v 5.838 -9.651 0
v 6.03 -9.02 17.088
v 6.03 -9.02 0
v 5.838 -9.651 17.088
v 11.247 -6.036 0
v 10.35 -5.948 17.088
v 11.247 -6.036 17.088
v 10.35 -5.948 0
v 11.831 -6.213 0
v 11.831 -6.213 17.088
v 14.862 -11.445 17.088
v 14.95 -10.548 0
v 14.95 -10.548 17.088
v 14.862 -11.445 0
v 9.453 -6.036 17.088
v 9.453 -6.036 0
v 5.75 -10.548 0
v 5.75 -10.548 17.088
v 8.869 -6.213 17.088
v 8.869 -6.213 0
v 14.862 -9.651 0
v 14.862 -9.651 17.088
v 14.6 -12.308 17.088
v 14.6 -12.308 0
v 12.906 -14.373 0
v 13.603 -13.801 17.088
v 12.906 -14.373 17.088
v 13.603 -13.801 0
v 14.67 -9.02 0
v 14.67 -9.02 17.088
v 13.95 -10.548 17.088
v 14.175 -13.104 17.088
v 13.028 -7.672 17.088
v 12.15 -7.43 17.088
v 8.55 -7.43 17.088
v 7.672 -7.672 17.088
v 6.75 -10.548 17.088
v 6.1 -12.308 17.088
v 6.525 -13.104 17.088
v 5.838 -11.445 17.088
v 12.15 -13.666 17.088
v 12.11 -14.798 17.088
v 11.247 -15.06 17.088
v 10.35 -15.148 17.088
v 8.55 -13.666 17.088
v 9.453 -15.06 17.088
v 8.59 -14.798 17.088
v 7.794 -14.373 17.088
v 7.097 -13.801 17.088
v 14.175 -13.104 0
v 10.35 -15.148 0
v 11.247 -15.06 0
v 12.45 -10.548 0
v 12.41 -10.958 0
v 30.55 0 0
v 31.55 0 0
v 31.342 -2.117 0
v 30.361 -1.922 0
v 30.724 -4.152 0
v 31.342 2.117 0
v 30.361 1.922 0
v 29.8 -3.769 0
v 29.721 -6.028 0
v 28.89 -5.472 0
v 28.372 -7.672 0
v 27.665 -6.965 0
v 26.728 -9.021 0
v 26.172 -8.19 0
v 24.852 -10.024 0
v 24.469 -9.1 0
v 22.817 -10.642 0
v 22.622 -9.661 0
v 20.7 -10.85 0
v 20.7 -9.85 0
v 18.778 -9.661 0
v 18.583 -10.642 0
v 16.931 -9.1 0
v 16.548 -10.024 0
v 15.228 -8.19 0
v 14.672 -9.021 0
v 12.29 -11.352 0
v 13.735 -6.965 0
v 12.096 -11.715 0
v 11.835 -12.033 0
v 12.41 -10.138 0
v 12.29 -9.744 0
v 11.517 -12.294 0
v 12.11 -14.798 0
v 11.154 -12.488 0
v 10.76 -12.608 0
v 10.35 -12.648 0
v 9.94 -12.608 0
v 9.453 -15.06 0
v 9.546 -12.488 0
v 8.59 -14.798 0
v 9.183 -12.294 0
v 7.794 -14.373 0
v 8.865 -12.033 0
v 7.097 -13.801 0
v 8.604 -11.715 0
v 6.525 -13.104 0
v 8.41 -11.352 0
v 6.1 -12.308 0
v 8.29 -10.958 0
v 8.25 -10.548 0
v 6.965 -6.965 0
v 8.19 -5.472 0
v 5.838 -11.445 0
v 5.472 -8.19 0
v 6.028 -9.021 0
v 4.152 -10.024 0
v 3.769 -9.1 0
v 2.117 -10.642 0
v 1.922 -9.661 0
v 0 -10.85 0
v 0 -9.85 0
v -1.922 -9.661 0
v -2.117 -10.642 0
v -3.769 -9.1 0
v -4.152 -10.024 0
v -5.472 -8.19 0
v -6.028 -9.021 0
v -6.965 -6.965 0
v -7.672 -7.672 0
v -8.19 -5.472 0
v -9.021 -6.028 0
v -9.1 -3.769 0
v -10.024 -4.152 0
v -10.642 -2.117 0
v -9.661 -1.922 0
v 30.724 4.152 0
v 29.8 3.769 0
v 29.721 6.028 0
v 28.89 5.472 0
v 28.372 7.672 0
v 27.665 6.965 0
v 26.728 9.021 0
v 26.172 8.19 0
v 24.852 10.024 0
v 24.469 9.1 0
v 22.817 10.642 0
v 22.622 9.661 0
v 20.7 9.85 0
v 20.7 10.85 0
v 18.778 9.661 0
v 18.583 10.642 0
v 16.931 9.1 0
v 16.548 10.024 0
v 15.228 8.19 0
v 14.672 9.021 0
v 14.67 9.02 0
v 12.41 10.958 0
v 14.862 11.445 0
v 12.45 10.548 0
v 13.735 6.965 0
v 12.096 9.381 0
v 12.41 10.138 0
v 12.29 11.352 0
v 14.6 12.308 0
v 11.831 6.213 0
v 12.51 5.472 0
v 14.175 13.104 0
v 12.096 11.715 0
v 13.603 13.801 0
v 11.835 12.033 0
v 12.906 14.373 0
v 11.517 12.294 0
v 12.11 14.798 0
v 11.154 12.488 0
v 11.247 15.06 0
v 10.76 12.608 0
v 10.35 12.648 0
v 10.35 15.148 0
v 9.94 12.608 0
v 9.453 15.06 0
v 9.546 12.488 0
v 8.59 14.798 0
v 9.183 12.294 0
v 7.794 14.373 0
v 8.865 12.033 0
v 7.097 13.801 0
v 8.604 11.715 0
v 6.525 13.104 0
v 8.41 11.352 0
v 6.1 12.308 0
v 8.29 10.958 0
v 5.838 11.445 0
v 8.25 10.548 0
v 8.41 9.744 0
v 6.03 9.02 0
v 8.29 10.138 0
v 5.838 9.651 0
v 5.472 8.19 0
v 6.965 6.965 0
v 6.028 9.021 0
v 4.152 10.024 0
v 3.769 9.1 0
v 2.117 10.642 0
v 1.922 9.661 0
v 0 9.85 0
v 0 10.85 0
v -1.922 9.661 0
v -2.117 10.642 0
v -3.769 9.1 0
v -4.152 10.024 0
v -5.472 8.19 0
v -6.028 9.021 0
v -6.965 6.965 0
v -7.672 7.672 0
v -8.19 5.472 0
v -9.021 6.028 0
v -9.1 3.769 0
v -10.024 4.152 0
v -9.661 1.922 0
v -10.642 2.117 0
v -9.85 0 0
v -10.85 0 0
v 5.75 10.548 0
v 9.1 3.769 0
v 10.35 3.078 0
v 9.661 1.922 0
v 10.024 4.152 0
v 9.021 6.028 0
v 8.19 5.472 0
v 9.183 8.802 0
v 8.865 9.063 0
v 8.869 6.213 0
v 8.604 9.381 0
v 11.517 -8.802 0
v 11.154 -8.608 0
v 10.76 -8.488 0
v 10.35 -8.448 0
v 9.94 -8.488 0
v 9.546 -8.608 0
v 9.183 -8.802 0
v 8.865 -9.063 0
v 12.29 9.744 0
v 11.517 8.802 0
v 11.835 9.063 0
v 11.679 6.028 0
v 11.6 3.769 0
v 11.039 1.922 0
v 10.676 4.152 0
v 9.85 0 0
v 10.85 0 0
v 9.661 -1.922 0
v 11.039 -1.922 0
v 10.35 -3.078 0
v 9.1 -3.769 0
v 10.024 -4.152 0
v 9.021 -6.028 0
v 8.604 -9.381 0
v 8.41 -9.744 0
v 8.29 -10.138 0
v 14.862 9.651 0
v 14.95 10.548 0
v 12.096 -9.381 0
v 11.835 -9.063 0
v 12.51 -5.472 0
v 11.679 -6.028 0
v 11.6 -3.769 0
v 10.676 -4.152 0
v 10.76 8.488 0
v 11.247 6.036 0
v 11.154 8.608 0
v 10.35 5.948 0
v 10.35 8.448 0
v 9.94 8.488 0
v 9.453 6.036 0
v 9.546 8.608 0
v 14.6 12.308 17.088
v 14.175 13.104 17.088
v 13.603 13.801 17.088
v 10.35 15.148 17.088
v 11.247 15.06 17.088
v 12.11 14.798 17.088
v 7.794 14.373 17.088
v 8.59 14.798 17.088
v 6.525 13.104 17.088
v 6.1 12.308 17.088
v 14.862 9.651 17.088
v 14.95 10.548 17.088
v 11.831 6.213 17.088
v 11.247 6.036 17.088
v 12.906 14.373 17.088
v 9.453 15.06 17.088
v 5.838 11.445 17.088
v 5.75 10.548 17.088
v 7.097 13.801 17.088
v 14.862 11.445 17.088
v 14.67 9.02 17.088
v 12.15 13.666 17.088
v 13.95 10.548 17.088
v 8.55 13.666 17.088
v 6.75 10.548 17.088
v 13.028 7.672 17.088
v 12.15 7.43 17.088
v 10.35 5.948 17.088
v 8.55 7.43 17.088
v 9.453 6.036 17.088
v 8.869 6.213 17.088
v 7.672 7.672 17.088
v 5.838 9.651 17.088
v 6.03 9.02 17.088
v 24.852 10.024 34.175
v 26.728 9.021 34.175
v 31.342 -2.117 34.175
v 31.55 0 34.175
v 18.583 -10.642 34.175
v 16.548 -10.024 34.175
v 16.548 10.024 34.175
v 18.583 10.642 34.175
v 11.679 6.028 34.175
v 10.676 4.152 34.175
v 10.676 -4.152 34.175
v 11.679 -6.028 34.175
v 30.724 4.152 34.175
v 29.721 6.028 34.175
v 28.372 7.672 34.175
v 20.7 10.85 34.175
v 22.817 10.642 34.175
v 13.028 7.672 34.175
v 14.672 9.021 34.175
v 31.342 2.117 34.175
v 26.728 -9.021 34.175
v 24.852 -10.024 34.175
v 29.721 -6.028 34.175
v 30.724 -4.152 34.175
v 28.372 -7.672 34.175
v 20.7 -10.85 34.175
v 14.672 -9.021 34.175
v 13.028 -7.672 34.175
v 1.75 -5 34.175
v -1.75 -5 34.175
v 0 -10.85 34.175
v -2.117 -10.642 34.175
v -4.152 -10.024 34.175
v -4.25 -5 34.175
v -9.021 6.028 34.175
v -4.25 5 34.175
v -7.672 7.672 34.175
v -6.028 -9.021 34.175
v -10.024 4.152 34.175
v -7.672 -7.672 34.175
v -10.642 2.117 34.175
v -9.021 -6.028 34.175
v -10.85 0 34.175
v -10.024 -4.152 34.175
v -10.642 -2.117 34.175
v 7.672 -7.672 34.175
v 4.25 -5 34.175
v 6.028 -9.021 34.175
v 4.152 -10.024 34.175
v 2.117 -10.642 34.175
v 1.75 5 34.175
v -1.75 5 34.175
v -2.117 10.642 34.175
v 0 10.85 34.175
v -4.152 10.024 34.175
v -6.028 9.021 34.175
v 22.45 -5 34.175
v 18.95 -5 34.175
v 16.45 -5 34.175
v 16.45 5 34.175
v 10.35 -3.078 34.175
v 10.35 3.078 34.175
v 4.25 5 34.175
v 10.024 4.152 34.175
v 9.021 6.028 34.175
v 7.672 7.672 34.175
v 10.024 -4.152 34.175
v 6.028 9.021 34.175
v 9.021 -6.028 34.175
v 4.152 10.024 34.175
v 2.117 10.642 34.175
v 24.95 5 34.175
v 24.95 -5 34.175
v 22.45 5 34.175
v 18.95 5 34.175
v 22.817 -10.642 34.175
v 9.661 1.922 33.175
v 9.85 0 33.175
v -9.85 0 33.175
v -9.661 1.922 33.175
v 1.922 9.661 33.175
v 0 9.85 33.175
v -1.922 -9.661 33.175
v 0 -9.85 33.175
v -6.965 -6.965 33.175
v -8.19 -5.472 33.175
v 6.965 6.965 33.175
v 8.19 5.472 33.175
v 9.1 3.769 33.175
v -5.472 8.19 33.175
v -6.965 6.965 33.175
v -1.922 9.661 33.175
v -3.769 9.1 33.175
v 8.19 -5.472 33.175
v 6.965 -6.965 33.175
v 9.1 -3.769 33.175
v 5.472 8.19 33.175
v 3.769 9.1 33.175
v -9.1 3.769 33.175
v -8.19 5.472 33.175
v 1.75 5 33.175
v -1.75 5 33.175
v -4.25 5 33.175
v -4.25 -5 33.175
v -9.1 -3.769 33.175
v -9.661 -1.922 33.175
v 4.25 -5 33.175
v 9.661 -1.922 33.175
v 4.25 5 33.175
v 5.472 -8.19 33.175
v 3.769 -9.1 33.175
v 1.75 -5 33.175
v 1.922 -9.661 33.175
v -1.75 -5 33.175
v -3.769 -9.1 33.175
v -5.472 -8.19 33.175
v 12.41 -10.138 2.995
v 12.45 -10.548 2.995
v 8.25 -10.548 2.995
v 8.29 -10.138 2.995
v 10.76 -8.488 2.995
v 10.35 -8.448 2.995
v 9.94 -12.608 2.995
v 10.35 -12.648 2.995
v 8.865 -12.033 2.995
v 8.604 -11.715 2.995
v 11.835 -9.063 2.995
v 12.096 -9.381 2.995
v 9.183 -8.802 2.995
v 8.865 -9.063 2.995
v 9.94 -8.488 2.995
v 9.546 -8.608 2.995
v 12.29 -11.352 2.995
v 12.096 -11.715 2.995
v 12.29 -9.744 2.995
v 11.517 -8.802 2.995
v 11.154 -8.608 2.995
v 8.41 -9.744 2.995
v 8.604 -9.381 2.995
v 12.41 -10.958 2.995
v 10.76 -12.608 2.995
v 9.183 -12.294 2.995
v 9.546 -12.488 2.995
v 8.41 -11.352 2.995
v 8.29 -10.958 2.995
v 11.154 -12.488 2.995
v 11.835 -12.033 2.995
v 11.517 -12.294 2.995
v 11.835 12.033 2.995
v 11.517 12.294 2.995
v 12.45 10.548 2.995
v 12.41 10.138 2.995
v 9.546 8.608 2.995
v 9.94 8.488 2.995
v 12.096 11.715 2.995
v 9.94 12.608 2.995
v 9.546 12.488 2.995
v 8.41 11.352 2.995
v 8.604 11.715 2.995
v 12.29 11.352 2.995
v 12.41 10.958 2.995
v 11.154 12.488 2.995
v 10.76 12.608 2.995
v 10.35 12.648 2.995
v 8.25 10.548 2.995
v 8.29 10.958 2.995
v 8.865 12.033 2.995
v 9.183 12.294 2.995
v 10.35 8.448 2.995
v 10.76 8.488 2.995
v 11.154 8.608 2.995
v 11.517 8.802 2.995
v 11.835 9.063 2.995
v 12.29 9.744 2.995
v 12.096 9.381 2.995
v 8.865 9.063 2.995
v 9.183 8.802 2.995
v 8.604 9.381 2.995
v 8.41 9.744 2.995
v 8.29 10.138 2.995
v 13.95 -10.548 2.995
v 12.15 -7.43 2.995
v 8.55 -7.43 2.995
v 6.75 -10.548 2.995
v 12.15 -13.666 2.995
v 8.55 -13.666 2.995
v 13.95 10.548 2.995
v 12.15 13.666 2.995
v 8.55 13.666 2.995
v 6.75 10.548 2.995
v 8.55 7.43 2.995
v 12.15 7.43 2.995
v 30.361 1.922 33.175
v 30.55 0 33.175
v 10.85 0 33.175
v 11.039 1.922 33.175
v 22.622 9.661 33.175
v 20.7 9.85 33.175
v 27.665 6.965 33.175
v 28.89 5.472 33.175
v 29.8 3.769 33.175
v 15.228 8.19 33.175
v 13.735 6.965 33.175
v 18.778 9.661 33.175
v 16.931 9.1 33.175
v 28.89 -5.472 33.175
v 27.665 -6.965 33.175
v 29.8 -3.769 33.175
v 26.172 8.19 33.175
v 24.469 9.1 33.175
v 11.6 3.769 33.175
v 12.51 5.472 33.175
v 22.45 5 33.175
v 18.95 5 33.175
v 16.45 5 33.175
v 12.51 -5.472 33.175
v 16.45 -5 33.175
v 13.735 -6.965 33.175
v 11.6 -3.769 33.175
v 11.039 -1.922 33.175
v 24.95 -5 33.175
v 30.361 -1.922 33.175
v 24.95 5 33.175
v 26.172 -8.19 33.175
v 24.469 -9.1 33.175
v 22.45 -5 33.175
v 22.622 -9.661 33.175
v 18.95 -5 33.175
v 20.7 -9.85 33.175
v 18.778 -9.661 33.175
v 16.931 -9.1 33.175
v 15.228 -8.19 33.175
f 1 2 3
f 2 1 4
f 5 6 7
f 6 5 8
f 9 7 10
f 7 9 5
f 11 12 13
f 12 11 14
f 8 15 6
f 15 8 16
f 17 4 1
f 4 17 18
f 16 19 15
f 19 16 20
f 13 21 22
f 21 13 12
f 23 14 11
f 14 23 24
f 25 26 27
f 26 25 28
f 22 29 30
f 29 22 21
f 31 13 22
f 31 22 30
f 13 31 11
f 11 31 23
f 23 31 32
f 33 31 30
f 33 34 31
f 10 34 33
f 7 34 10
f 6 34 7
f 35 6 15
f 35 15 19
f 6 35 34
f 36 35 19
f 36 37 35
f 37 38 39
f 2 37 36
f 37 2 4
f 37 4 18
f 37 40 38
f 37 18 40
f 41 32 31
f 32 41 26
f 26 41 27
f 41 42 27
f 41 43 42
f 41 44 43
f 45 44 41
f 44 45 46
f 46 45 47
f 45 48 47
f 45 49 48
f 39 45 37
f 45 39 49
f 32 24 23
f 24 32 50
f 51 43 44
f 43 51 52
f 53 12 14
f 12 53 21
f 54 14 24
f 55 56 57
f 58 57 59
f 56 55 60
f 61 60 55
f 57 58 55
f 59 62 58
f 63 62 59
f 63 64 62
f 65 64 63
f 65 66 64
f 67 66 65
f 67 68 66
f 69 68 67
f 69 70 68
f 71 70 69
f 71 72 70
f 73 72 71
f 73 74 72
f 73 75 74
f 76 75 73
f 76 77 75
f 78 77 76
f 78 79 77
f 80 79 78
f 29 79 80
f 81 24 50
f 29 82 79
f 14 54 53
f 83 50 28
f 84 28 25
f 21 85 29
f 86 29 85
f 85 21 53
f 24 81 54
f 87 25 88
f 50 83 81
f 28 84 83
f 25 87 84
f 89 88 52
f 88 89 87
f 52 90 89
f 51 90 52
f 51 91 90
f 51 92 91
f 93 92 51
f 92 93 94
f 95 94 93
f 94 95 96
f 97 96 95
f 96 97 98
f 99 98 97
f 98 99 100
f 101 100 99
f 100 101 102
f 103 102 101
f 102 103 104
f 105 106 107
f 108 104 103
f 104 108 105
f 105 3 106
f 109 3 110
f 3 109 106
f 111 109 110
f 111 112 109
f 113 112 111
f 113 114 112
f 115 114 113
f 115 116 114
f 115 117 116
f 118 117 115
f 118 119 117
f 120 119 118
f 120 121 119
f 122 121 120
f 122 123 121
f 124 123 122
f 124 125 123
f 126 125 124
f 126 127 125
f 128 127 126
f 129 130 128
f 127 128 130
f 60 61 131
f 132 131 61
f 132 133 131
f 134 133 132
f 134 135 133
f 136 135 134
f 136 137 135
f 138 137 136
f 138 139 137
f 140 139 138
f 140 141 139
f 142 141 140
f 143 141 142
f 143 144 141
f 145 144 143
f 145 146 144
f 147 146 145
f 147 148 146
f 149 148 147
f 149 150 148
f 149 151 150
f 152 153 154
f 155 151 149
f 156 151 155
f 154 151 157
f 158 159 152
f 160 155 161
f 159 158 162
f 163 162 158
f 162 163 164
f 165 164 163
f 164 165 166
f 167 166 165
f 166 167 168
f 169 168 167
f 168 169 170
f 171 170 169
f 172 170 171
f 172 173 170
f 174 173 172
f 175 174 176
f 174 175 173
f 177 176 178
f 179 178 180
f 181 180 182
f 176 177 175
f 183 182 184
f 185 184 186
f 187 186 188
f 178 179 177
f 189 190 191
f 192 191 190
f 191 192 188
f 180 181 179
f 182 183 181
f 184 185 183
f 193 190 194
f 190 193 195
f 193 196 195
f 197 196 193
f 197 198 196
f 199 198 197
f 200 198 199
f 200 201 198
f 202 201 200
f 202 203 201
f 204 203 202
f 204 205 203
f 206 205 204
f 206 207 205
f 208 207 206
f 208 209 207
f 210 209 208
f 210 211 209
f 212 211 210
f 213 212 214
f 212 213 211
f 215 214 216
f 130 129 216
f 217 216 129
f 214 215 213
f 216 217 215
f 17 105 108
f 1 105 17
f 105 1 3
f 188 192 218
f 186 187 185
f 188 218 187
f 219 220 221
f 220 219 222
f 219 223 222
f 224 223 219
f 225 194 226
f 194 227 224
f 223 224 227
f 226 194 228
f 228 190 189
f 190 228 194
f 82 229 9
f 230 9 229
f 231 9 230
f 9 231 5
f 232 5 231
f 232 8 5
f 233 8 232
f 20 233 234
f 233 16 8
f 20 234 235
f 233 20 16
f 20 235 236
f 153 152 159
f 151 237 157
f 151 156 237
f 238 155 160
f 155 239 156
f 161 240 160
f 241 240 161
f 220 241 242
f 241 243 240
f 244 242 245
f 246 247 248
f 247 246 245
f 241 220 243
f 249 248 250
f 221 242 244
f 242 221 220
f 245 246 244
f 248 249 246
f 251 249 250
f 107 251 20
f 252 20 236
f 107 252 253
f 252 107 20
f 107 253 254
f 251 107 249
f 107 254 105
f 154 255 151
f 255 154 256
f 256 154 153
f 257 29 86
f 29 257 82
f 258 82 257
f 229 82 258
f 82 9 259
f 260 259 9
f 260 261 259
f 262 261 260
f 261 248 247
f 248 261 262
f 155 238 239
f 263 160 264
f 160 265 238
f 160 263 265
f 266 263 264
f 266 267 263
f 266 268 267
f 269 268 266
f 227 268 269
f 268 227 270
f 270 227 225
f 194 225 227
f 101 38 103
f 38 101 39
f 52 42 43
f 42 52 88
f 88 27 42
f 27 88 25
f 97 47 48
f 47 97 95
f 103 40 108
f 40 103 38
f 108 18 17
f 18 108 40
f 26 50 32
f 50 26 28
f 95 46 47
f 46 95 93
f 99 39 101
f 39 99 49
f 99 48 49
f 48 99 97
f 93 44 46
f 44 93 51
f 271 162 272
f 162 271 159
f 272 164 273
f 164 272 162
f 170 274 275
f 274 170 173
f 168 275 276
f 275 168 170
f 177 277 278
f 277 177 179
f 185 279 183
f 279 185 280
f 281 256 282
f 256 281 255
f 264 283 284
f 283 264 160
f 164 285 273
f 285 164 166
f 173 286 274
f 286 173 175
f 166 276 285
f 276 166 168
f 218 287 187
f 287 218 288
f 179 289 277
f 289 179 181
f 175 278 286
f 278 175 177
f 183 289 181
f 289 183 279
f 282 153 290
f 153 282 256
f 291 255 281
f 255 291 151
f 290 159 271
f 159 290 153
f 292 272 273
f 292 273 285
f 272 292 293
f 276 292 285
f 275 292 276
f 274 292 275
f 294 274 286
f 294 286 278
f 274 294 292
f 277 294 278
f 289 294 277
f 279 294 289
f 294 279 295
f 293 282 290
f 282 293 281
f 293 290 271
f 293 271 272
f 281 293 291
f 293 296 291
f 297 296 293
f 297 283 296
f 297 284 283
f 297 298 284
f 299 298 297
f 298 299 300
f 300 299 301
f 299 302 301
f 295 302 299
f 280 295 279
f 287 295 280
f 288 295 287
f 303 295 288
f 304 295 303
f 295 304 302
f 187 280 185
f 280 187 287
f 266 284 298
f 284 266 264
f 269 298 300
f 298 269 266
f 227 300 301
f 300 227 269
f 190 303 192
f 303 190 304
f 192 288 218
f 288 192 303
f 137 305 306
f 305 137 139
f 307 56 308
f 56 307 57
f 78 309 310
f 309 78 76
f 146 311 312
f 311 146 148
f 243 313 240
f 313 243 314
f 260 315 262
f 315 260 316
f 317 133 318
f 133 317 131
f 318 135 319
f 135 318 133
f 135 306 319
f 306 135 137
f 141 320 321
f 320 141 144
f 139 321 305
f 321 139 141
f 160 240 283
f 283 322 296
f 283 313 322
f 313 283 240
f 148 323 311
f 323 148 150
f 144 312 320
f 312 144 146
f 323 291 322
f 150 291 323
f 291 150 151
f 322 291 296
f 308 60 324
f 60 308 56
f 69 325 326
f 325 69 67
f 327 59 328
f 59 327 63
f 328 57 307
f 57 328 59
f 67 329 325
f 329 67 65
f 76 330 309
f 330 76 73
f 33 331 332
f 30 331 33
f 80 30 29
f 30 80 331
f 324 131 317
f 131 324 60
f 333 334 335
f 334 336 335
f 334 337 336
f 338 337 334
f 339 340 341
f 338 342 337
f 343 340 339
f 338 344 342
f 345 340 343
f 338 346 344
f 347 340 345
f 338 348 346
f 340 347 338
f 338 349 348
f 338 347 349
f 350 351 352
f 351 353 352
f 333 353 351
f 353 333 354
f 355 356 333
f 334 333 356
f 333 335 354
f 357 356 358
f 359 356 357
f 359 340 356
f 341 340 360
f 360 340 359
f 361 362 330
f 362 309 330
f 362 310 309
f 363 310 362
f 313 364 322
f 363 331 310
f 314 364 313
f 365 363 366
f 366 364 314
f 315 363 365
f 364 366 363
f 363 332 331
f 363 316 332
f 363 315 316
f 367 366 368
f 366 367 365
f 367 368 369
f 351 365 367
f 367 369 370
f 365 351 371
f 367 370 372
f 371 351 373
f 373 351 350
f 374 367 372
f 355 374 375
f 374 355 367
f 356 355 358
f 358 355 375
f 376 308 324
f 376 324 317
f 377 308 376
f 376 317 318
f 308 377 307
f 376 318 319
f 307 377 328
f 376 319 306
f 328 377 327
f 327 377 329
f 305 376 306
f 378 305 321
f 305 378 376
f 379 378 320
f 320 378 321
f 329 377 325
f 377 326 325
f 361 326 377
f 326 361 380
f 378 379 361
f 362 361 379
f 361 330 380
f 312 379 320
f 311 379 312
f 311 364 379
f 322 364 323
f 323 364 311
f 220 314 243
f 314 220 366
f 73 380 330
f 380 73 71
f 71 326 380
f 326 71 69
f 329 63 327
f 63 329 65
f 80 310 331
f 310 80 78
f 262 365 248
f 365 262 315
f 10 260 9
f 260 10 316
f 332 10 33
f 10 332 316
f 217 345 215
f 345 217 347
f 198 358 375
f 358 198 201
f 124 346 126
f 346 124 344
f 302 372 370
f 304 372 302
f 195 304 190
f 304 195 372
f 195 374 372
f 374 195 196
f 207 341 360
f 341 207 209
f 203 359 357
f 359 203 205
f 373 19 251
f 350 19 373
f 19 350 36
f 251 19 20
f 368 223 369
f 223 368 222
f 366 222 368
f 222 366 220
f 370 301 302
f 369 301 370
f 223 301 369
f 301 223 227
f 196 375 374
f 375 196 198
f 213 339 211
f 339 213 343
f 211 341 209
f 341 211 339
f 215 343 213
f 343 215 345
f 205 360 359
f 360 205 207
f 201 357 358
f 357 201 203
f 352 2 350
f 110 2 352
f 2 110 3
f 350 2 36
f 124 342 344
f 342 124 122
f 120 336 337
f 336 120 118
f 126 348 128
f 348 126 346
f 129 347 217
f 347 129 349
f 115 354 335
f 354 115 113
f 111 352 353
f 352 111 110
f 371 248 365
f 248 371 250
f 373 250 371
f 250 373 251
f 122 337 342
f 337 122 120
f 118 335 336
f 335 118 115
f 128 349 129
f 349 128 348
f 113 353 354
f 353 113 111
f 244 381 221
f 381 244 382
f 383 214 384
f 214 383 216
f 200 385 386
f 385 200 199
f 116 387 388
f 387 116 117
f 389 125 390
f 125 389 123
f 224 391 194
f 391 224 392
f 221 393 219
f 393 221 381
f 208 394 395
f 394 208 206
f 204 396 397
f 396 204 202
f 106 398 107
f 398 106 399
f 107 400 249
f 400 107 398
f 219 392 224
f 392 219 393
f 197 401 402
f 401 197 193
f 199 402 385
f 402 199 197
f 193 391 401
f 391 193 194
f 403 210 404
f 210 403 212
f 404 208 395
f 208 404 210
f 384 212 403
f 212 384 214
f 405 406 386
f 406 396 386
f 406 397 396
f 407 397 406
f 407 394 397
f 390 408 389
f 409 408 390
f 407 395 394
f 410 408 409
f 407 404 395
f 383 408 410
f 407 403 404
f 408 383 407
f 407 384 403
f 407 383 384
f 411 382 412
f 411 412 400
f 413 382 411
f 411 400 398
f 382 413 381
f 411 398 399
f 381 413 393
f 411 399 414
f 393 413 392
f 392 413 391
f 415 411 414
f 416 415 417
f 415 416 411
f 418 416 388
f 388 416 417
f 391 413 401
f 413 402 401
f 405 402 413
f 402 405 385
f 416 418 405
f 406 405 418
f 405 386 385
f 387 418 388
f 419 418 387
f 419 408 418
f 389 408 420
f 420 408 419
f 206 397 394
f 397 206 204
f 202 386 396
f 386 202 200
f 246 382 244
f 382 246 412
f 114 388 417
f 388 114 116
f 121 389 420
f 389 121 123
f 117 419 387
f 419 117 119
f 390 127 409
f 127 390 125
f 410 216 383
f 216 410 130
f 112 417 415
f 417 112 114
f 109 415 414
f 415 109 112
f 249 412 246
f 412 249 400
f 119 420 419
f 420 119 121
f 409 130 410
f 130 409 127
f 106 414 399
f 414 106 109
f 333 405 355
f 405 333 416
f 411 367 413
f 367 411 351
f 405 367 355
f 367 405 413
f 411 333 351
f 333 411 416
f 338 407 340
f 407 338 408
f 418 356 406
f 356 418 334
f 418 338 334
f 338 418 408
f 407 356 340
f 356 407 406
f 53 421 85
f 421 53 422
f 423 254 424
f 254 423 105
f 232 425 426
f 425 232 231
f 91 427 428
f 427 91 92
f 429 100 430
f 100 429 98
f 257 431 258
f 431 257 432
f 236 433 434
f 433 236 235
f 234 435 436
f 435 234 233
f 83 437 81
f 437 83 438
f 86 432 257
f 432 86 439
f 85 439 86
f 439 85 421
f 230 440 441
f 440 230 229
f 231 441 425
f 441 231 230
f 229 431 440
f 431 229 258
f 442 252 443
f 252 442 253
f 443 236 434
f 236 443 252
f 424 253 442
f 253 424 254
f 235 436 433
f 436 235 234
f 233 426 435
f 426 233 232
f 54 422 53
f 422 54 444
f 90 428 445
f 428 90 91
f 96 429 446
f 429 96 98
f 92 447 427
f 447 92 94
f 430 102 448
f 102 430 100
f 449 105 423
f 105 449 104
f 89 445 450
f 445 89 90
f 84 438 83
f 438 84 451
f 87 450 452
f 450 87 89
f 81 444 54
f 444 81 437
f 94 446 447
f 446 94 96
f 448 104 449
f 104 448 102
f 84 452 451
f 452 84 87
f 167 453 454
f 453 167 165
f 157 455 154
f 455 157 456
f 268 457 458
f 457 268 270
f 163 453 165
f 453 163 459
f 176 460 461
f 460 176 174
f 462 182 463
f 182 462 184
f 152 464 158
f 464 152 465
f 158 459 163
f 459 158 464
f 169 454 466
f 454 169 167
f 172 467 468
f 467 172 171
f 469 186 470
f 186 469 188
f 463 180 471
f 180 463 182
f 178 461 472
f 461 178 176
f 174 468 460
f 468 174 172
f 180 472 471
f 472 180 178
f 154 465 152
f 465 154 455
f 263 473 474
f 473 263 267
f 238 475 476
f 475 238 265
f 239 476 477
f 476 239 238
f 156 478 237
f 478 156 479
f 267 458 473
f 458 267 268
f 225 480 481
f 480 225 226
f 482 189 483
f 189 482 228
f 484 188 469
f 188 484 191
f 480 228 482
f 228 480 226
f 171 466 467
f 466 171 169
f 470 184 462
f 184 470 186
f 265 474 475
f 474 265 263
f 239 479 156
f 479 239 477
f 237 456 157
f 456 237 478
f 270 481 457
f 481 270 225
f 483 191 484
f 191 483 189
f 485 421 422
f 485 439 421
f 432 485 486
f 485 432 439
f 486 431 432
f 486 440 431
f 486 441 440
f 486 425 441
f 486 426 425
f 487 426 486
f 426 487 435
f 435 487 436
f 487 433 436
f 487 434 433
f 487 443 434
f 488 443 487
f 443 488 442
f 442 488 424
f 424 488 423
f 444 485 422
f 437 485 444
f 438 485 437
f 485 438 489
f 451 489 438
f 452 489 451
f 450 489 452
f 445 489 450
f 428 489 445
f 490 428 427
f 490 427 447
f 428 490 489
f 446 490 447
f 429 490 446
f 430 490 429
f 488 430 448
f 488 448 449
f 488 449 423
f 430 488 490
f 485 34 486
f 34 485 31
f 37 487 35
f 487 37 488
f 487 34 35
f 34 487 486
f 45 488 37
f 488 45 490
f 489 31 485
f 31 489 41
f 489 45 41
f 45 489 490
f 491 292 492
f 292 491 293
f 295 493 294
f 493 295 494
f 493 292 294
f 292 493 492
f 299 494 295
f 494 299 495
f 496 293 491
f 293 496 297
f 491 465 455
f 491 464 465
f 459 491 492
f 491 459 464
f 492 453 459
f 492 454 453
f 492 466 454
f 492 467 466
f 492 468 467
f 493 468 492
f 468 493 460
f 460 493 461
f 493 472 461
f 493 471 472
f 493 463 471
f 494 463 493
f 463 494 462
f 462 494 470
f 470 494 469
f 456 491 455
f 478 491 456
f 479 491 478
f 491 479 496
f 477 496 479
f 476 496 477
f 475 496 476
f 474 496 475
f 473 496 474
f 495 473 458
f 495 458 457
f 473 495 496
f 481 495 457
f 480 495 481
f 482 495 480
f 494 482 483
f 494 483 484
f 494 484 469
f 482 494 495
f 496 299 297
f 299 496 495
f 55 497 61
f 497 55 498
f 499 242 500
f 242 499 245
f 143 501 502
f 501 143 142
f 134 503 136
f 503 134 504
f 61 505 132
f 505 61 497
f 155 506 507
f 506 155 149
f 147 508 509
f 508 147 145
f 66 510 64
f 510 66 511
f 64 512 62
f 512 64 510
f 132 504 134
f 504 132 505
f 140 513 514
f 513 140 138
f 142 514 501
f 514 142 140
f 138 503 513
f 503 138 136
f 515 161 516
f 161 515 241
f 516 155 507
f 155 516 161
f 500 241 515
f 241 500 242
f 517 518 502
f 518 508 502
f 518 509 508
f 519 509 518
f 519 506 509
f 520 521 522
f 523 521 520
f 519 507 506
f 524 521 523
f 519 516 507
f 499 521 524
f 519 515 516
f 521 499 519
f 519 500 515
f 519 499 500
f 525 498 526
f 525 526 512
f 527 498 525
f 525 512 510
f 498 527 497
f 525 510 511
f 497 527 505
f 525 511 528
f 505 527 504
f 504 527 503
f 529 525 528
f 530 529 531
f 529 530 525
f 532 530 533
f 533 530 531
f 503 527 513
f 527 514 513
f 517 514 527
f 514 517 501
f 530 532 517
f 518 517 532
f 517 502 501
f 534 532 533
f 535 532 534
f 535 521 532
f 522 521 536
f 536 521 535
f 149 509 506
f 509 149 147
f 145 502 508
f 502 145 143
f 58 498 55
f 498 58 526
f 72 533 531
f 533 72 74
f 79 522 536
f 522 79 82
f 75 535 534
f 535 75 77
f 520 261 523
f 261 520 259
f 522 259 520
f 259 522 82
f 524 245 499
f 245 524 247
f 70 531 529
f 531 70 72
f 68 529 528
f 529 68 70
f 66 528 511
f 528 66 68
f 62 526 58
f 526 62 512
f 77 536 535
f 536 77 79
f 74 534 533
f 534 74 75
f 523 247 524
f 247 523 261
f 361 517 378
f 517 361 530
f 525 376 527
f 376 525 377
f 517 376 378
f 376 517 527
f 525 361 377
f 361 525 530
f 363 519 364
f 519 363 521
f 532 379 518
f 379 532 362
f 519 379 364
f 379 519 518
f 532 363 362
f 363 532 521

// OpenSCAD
d18650 = 18.5;
h18650 = 65.15;
dbolt = 6;
dboltthrad = 3;
delta = 0.6;
th = 1;
n = 2;


//cylinder(d=d18650, h=h18650, center=true, $fn=32);

/*
    translate([0,0,0.5*(h18650+2*delta-0.5*(h18650+2*th+2*delta))+th]) {
        cylinder(d=d18650+2*th+2*delta, h=0.5*(h18650+2*th+2*delta), center=true, $fn=32);
        translate([0,-0.5*(d18650+2*th+2*delta+dbolt+th+delta),0])
            cylinder(d=dbolt+2*th+2*delta, h=0.5*(h18650+2*th+2*delta), center=true, $fn=32);
        translate([0,0.5*(d18650+2*th+2*delta+dbolt+th+delta),0])
            cylinder(d=dbolt+2*th+2*delta, h=0.5*(h18650+2*th+2*delta), center=true, $fn=32);
    }
*/
difference() {
    translate([0,0,0.5*(h18650+2*delta-0.5*(h18650+2*th+2*delta))+th]) {
        //hull() {
            for (x=[0:n-1]) {
                translate([x*(d18650+th+2*delta),0,0]) {
                    cylinder(d=d18650+2*th+2*delta, h=0.5*(h18650+2*th+2*delta), center=true, $fn=32);
                    if (x>0) {
                        translate([-0.5*(d18650+th+2*delta),0,0]){
                            translate([0,-0.36*(d18650+2*th+2*delta+dbolt+th+delta),-0.125*(h18650+2*th+2*delta)])
                                cylinder(d=dbolt+2*th+2*delta, h=0.25*(h18650+2*th+2*delta), center=true, $fn=32);
                            translate([0,0.36*(d18650+2*th+2*delta+dbolt+th+delta),-0.125*(h18650+2*th+2*delta)])
                                cylinder(d=dbolt+2*th+2*delta, h=0.25*(h18650+2*th+2*delta), center=true, $fn=32);
                        }
                    }
                }
            }
        //}
    }
    for (x=[0:n-1]) {
        translate([x*(d18650+th+2*delta),0,0]) {
            cylinder(d=d18650+2*delta, h=h18650+2*delta, center=true, $fn=32);
            translate([3,0,0])
                cube([2.5,10,300], center=true);
            translate([-3,0,0])
                cube([2.5,10,300], center=true);
                if (x>0) {
                translate([-0.5*(d18650+th+2*delta),0,0.5*(h18650+2*delta-0.5*(h18650+2*th+2*delta))+th]) {
                    translate([0,-0.36*(d18650+2*th+2*delta+dbolt+th+delta),0])
                        cylinder(d=dboltthrad+2*delta, h=0.5*(h18650+2*th+2*delta)+0.01, center=true, $fn=32);
                    translate([0,0.36*(d18650+2*th+2*delta+dbolt+th+delta),0])
                        cylinder(d=dboltthrad+2*delta, h=0.5*(h18650+2*th+2*delta)+0.01, center=true, $fn=32);
                    
                    translate([0,-0.36*(d18650+2*th+2*delta+dbolt+th+delta),3*th])
                        cylinder(d=dbolt+2*delta, h=0.5*(h18650+2*th+2*delta)+0.01, center=true, $fn=6);
                    translate([0,0.36*(d18650+2*th+2*delta+dbolt+th+delta),3*th])
                        cylinder(d=dbolt+2*delta, h=0.5*(h18650+2*th+2*delta)+0.01, center=true, $fn=6);
                    
                }
            }
        }
    }
}
